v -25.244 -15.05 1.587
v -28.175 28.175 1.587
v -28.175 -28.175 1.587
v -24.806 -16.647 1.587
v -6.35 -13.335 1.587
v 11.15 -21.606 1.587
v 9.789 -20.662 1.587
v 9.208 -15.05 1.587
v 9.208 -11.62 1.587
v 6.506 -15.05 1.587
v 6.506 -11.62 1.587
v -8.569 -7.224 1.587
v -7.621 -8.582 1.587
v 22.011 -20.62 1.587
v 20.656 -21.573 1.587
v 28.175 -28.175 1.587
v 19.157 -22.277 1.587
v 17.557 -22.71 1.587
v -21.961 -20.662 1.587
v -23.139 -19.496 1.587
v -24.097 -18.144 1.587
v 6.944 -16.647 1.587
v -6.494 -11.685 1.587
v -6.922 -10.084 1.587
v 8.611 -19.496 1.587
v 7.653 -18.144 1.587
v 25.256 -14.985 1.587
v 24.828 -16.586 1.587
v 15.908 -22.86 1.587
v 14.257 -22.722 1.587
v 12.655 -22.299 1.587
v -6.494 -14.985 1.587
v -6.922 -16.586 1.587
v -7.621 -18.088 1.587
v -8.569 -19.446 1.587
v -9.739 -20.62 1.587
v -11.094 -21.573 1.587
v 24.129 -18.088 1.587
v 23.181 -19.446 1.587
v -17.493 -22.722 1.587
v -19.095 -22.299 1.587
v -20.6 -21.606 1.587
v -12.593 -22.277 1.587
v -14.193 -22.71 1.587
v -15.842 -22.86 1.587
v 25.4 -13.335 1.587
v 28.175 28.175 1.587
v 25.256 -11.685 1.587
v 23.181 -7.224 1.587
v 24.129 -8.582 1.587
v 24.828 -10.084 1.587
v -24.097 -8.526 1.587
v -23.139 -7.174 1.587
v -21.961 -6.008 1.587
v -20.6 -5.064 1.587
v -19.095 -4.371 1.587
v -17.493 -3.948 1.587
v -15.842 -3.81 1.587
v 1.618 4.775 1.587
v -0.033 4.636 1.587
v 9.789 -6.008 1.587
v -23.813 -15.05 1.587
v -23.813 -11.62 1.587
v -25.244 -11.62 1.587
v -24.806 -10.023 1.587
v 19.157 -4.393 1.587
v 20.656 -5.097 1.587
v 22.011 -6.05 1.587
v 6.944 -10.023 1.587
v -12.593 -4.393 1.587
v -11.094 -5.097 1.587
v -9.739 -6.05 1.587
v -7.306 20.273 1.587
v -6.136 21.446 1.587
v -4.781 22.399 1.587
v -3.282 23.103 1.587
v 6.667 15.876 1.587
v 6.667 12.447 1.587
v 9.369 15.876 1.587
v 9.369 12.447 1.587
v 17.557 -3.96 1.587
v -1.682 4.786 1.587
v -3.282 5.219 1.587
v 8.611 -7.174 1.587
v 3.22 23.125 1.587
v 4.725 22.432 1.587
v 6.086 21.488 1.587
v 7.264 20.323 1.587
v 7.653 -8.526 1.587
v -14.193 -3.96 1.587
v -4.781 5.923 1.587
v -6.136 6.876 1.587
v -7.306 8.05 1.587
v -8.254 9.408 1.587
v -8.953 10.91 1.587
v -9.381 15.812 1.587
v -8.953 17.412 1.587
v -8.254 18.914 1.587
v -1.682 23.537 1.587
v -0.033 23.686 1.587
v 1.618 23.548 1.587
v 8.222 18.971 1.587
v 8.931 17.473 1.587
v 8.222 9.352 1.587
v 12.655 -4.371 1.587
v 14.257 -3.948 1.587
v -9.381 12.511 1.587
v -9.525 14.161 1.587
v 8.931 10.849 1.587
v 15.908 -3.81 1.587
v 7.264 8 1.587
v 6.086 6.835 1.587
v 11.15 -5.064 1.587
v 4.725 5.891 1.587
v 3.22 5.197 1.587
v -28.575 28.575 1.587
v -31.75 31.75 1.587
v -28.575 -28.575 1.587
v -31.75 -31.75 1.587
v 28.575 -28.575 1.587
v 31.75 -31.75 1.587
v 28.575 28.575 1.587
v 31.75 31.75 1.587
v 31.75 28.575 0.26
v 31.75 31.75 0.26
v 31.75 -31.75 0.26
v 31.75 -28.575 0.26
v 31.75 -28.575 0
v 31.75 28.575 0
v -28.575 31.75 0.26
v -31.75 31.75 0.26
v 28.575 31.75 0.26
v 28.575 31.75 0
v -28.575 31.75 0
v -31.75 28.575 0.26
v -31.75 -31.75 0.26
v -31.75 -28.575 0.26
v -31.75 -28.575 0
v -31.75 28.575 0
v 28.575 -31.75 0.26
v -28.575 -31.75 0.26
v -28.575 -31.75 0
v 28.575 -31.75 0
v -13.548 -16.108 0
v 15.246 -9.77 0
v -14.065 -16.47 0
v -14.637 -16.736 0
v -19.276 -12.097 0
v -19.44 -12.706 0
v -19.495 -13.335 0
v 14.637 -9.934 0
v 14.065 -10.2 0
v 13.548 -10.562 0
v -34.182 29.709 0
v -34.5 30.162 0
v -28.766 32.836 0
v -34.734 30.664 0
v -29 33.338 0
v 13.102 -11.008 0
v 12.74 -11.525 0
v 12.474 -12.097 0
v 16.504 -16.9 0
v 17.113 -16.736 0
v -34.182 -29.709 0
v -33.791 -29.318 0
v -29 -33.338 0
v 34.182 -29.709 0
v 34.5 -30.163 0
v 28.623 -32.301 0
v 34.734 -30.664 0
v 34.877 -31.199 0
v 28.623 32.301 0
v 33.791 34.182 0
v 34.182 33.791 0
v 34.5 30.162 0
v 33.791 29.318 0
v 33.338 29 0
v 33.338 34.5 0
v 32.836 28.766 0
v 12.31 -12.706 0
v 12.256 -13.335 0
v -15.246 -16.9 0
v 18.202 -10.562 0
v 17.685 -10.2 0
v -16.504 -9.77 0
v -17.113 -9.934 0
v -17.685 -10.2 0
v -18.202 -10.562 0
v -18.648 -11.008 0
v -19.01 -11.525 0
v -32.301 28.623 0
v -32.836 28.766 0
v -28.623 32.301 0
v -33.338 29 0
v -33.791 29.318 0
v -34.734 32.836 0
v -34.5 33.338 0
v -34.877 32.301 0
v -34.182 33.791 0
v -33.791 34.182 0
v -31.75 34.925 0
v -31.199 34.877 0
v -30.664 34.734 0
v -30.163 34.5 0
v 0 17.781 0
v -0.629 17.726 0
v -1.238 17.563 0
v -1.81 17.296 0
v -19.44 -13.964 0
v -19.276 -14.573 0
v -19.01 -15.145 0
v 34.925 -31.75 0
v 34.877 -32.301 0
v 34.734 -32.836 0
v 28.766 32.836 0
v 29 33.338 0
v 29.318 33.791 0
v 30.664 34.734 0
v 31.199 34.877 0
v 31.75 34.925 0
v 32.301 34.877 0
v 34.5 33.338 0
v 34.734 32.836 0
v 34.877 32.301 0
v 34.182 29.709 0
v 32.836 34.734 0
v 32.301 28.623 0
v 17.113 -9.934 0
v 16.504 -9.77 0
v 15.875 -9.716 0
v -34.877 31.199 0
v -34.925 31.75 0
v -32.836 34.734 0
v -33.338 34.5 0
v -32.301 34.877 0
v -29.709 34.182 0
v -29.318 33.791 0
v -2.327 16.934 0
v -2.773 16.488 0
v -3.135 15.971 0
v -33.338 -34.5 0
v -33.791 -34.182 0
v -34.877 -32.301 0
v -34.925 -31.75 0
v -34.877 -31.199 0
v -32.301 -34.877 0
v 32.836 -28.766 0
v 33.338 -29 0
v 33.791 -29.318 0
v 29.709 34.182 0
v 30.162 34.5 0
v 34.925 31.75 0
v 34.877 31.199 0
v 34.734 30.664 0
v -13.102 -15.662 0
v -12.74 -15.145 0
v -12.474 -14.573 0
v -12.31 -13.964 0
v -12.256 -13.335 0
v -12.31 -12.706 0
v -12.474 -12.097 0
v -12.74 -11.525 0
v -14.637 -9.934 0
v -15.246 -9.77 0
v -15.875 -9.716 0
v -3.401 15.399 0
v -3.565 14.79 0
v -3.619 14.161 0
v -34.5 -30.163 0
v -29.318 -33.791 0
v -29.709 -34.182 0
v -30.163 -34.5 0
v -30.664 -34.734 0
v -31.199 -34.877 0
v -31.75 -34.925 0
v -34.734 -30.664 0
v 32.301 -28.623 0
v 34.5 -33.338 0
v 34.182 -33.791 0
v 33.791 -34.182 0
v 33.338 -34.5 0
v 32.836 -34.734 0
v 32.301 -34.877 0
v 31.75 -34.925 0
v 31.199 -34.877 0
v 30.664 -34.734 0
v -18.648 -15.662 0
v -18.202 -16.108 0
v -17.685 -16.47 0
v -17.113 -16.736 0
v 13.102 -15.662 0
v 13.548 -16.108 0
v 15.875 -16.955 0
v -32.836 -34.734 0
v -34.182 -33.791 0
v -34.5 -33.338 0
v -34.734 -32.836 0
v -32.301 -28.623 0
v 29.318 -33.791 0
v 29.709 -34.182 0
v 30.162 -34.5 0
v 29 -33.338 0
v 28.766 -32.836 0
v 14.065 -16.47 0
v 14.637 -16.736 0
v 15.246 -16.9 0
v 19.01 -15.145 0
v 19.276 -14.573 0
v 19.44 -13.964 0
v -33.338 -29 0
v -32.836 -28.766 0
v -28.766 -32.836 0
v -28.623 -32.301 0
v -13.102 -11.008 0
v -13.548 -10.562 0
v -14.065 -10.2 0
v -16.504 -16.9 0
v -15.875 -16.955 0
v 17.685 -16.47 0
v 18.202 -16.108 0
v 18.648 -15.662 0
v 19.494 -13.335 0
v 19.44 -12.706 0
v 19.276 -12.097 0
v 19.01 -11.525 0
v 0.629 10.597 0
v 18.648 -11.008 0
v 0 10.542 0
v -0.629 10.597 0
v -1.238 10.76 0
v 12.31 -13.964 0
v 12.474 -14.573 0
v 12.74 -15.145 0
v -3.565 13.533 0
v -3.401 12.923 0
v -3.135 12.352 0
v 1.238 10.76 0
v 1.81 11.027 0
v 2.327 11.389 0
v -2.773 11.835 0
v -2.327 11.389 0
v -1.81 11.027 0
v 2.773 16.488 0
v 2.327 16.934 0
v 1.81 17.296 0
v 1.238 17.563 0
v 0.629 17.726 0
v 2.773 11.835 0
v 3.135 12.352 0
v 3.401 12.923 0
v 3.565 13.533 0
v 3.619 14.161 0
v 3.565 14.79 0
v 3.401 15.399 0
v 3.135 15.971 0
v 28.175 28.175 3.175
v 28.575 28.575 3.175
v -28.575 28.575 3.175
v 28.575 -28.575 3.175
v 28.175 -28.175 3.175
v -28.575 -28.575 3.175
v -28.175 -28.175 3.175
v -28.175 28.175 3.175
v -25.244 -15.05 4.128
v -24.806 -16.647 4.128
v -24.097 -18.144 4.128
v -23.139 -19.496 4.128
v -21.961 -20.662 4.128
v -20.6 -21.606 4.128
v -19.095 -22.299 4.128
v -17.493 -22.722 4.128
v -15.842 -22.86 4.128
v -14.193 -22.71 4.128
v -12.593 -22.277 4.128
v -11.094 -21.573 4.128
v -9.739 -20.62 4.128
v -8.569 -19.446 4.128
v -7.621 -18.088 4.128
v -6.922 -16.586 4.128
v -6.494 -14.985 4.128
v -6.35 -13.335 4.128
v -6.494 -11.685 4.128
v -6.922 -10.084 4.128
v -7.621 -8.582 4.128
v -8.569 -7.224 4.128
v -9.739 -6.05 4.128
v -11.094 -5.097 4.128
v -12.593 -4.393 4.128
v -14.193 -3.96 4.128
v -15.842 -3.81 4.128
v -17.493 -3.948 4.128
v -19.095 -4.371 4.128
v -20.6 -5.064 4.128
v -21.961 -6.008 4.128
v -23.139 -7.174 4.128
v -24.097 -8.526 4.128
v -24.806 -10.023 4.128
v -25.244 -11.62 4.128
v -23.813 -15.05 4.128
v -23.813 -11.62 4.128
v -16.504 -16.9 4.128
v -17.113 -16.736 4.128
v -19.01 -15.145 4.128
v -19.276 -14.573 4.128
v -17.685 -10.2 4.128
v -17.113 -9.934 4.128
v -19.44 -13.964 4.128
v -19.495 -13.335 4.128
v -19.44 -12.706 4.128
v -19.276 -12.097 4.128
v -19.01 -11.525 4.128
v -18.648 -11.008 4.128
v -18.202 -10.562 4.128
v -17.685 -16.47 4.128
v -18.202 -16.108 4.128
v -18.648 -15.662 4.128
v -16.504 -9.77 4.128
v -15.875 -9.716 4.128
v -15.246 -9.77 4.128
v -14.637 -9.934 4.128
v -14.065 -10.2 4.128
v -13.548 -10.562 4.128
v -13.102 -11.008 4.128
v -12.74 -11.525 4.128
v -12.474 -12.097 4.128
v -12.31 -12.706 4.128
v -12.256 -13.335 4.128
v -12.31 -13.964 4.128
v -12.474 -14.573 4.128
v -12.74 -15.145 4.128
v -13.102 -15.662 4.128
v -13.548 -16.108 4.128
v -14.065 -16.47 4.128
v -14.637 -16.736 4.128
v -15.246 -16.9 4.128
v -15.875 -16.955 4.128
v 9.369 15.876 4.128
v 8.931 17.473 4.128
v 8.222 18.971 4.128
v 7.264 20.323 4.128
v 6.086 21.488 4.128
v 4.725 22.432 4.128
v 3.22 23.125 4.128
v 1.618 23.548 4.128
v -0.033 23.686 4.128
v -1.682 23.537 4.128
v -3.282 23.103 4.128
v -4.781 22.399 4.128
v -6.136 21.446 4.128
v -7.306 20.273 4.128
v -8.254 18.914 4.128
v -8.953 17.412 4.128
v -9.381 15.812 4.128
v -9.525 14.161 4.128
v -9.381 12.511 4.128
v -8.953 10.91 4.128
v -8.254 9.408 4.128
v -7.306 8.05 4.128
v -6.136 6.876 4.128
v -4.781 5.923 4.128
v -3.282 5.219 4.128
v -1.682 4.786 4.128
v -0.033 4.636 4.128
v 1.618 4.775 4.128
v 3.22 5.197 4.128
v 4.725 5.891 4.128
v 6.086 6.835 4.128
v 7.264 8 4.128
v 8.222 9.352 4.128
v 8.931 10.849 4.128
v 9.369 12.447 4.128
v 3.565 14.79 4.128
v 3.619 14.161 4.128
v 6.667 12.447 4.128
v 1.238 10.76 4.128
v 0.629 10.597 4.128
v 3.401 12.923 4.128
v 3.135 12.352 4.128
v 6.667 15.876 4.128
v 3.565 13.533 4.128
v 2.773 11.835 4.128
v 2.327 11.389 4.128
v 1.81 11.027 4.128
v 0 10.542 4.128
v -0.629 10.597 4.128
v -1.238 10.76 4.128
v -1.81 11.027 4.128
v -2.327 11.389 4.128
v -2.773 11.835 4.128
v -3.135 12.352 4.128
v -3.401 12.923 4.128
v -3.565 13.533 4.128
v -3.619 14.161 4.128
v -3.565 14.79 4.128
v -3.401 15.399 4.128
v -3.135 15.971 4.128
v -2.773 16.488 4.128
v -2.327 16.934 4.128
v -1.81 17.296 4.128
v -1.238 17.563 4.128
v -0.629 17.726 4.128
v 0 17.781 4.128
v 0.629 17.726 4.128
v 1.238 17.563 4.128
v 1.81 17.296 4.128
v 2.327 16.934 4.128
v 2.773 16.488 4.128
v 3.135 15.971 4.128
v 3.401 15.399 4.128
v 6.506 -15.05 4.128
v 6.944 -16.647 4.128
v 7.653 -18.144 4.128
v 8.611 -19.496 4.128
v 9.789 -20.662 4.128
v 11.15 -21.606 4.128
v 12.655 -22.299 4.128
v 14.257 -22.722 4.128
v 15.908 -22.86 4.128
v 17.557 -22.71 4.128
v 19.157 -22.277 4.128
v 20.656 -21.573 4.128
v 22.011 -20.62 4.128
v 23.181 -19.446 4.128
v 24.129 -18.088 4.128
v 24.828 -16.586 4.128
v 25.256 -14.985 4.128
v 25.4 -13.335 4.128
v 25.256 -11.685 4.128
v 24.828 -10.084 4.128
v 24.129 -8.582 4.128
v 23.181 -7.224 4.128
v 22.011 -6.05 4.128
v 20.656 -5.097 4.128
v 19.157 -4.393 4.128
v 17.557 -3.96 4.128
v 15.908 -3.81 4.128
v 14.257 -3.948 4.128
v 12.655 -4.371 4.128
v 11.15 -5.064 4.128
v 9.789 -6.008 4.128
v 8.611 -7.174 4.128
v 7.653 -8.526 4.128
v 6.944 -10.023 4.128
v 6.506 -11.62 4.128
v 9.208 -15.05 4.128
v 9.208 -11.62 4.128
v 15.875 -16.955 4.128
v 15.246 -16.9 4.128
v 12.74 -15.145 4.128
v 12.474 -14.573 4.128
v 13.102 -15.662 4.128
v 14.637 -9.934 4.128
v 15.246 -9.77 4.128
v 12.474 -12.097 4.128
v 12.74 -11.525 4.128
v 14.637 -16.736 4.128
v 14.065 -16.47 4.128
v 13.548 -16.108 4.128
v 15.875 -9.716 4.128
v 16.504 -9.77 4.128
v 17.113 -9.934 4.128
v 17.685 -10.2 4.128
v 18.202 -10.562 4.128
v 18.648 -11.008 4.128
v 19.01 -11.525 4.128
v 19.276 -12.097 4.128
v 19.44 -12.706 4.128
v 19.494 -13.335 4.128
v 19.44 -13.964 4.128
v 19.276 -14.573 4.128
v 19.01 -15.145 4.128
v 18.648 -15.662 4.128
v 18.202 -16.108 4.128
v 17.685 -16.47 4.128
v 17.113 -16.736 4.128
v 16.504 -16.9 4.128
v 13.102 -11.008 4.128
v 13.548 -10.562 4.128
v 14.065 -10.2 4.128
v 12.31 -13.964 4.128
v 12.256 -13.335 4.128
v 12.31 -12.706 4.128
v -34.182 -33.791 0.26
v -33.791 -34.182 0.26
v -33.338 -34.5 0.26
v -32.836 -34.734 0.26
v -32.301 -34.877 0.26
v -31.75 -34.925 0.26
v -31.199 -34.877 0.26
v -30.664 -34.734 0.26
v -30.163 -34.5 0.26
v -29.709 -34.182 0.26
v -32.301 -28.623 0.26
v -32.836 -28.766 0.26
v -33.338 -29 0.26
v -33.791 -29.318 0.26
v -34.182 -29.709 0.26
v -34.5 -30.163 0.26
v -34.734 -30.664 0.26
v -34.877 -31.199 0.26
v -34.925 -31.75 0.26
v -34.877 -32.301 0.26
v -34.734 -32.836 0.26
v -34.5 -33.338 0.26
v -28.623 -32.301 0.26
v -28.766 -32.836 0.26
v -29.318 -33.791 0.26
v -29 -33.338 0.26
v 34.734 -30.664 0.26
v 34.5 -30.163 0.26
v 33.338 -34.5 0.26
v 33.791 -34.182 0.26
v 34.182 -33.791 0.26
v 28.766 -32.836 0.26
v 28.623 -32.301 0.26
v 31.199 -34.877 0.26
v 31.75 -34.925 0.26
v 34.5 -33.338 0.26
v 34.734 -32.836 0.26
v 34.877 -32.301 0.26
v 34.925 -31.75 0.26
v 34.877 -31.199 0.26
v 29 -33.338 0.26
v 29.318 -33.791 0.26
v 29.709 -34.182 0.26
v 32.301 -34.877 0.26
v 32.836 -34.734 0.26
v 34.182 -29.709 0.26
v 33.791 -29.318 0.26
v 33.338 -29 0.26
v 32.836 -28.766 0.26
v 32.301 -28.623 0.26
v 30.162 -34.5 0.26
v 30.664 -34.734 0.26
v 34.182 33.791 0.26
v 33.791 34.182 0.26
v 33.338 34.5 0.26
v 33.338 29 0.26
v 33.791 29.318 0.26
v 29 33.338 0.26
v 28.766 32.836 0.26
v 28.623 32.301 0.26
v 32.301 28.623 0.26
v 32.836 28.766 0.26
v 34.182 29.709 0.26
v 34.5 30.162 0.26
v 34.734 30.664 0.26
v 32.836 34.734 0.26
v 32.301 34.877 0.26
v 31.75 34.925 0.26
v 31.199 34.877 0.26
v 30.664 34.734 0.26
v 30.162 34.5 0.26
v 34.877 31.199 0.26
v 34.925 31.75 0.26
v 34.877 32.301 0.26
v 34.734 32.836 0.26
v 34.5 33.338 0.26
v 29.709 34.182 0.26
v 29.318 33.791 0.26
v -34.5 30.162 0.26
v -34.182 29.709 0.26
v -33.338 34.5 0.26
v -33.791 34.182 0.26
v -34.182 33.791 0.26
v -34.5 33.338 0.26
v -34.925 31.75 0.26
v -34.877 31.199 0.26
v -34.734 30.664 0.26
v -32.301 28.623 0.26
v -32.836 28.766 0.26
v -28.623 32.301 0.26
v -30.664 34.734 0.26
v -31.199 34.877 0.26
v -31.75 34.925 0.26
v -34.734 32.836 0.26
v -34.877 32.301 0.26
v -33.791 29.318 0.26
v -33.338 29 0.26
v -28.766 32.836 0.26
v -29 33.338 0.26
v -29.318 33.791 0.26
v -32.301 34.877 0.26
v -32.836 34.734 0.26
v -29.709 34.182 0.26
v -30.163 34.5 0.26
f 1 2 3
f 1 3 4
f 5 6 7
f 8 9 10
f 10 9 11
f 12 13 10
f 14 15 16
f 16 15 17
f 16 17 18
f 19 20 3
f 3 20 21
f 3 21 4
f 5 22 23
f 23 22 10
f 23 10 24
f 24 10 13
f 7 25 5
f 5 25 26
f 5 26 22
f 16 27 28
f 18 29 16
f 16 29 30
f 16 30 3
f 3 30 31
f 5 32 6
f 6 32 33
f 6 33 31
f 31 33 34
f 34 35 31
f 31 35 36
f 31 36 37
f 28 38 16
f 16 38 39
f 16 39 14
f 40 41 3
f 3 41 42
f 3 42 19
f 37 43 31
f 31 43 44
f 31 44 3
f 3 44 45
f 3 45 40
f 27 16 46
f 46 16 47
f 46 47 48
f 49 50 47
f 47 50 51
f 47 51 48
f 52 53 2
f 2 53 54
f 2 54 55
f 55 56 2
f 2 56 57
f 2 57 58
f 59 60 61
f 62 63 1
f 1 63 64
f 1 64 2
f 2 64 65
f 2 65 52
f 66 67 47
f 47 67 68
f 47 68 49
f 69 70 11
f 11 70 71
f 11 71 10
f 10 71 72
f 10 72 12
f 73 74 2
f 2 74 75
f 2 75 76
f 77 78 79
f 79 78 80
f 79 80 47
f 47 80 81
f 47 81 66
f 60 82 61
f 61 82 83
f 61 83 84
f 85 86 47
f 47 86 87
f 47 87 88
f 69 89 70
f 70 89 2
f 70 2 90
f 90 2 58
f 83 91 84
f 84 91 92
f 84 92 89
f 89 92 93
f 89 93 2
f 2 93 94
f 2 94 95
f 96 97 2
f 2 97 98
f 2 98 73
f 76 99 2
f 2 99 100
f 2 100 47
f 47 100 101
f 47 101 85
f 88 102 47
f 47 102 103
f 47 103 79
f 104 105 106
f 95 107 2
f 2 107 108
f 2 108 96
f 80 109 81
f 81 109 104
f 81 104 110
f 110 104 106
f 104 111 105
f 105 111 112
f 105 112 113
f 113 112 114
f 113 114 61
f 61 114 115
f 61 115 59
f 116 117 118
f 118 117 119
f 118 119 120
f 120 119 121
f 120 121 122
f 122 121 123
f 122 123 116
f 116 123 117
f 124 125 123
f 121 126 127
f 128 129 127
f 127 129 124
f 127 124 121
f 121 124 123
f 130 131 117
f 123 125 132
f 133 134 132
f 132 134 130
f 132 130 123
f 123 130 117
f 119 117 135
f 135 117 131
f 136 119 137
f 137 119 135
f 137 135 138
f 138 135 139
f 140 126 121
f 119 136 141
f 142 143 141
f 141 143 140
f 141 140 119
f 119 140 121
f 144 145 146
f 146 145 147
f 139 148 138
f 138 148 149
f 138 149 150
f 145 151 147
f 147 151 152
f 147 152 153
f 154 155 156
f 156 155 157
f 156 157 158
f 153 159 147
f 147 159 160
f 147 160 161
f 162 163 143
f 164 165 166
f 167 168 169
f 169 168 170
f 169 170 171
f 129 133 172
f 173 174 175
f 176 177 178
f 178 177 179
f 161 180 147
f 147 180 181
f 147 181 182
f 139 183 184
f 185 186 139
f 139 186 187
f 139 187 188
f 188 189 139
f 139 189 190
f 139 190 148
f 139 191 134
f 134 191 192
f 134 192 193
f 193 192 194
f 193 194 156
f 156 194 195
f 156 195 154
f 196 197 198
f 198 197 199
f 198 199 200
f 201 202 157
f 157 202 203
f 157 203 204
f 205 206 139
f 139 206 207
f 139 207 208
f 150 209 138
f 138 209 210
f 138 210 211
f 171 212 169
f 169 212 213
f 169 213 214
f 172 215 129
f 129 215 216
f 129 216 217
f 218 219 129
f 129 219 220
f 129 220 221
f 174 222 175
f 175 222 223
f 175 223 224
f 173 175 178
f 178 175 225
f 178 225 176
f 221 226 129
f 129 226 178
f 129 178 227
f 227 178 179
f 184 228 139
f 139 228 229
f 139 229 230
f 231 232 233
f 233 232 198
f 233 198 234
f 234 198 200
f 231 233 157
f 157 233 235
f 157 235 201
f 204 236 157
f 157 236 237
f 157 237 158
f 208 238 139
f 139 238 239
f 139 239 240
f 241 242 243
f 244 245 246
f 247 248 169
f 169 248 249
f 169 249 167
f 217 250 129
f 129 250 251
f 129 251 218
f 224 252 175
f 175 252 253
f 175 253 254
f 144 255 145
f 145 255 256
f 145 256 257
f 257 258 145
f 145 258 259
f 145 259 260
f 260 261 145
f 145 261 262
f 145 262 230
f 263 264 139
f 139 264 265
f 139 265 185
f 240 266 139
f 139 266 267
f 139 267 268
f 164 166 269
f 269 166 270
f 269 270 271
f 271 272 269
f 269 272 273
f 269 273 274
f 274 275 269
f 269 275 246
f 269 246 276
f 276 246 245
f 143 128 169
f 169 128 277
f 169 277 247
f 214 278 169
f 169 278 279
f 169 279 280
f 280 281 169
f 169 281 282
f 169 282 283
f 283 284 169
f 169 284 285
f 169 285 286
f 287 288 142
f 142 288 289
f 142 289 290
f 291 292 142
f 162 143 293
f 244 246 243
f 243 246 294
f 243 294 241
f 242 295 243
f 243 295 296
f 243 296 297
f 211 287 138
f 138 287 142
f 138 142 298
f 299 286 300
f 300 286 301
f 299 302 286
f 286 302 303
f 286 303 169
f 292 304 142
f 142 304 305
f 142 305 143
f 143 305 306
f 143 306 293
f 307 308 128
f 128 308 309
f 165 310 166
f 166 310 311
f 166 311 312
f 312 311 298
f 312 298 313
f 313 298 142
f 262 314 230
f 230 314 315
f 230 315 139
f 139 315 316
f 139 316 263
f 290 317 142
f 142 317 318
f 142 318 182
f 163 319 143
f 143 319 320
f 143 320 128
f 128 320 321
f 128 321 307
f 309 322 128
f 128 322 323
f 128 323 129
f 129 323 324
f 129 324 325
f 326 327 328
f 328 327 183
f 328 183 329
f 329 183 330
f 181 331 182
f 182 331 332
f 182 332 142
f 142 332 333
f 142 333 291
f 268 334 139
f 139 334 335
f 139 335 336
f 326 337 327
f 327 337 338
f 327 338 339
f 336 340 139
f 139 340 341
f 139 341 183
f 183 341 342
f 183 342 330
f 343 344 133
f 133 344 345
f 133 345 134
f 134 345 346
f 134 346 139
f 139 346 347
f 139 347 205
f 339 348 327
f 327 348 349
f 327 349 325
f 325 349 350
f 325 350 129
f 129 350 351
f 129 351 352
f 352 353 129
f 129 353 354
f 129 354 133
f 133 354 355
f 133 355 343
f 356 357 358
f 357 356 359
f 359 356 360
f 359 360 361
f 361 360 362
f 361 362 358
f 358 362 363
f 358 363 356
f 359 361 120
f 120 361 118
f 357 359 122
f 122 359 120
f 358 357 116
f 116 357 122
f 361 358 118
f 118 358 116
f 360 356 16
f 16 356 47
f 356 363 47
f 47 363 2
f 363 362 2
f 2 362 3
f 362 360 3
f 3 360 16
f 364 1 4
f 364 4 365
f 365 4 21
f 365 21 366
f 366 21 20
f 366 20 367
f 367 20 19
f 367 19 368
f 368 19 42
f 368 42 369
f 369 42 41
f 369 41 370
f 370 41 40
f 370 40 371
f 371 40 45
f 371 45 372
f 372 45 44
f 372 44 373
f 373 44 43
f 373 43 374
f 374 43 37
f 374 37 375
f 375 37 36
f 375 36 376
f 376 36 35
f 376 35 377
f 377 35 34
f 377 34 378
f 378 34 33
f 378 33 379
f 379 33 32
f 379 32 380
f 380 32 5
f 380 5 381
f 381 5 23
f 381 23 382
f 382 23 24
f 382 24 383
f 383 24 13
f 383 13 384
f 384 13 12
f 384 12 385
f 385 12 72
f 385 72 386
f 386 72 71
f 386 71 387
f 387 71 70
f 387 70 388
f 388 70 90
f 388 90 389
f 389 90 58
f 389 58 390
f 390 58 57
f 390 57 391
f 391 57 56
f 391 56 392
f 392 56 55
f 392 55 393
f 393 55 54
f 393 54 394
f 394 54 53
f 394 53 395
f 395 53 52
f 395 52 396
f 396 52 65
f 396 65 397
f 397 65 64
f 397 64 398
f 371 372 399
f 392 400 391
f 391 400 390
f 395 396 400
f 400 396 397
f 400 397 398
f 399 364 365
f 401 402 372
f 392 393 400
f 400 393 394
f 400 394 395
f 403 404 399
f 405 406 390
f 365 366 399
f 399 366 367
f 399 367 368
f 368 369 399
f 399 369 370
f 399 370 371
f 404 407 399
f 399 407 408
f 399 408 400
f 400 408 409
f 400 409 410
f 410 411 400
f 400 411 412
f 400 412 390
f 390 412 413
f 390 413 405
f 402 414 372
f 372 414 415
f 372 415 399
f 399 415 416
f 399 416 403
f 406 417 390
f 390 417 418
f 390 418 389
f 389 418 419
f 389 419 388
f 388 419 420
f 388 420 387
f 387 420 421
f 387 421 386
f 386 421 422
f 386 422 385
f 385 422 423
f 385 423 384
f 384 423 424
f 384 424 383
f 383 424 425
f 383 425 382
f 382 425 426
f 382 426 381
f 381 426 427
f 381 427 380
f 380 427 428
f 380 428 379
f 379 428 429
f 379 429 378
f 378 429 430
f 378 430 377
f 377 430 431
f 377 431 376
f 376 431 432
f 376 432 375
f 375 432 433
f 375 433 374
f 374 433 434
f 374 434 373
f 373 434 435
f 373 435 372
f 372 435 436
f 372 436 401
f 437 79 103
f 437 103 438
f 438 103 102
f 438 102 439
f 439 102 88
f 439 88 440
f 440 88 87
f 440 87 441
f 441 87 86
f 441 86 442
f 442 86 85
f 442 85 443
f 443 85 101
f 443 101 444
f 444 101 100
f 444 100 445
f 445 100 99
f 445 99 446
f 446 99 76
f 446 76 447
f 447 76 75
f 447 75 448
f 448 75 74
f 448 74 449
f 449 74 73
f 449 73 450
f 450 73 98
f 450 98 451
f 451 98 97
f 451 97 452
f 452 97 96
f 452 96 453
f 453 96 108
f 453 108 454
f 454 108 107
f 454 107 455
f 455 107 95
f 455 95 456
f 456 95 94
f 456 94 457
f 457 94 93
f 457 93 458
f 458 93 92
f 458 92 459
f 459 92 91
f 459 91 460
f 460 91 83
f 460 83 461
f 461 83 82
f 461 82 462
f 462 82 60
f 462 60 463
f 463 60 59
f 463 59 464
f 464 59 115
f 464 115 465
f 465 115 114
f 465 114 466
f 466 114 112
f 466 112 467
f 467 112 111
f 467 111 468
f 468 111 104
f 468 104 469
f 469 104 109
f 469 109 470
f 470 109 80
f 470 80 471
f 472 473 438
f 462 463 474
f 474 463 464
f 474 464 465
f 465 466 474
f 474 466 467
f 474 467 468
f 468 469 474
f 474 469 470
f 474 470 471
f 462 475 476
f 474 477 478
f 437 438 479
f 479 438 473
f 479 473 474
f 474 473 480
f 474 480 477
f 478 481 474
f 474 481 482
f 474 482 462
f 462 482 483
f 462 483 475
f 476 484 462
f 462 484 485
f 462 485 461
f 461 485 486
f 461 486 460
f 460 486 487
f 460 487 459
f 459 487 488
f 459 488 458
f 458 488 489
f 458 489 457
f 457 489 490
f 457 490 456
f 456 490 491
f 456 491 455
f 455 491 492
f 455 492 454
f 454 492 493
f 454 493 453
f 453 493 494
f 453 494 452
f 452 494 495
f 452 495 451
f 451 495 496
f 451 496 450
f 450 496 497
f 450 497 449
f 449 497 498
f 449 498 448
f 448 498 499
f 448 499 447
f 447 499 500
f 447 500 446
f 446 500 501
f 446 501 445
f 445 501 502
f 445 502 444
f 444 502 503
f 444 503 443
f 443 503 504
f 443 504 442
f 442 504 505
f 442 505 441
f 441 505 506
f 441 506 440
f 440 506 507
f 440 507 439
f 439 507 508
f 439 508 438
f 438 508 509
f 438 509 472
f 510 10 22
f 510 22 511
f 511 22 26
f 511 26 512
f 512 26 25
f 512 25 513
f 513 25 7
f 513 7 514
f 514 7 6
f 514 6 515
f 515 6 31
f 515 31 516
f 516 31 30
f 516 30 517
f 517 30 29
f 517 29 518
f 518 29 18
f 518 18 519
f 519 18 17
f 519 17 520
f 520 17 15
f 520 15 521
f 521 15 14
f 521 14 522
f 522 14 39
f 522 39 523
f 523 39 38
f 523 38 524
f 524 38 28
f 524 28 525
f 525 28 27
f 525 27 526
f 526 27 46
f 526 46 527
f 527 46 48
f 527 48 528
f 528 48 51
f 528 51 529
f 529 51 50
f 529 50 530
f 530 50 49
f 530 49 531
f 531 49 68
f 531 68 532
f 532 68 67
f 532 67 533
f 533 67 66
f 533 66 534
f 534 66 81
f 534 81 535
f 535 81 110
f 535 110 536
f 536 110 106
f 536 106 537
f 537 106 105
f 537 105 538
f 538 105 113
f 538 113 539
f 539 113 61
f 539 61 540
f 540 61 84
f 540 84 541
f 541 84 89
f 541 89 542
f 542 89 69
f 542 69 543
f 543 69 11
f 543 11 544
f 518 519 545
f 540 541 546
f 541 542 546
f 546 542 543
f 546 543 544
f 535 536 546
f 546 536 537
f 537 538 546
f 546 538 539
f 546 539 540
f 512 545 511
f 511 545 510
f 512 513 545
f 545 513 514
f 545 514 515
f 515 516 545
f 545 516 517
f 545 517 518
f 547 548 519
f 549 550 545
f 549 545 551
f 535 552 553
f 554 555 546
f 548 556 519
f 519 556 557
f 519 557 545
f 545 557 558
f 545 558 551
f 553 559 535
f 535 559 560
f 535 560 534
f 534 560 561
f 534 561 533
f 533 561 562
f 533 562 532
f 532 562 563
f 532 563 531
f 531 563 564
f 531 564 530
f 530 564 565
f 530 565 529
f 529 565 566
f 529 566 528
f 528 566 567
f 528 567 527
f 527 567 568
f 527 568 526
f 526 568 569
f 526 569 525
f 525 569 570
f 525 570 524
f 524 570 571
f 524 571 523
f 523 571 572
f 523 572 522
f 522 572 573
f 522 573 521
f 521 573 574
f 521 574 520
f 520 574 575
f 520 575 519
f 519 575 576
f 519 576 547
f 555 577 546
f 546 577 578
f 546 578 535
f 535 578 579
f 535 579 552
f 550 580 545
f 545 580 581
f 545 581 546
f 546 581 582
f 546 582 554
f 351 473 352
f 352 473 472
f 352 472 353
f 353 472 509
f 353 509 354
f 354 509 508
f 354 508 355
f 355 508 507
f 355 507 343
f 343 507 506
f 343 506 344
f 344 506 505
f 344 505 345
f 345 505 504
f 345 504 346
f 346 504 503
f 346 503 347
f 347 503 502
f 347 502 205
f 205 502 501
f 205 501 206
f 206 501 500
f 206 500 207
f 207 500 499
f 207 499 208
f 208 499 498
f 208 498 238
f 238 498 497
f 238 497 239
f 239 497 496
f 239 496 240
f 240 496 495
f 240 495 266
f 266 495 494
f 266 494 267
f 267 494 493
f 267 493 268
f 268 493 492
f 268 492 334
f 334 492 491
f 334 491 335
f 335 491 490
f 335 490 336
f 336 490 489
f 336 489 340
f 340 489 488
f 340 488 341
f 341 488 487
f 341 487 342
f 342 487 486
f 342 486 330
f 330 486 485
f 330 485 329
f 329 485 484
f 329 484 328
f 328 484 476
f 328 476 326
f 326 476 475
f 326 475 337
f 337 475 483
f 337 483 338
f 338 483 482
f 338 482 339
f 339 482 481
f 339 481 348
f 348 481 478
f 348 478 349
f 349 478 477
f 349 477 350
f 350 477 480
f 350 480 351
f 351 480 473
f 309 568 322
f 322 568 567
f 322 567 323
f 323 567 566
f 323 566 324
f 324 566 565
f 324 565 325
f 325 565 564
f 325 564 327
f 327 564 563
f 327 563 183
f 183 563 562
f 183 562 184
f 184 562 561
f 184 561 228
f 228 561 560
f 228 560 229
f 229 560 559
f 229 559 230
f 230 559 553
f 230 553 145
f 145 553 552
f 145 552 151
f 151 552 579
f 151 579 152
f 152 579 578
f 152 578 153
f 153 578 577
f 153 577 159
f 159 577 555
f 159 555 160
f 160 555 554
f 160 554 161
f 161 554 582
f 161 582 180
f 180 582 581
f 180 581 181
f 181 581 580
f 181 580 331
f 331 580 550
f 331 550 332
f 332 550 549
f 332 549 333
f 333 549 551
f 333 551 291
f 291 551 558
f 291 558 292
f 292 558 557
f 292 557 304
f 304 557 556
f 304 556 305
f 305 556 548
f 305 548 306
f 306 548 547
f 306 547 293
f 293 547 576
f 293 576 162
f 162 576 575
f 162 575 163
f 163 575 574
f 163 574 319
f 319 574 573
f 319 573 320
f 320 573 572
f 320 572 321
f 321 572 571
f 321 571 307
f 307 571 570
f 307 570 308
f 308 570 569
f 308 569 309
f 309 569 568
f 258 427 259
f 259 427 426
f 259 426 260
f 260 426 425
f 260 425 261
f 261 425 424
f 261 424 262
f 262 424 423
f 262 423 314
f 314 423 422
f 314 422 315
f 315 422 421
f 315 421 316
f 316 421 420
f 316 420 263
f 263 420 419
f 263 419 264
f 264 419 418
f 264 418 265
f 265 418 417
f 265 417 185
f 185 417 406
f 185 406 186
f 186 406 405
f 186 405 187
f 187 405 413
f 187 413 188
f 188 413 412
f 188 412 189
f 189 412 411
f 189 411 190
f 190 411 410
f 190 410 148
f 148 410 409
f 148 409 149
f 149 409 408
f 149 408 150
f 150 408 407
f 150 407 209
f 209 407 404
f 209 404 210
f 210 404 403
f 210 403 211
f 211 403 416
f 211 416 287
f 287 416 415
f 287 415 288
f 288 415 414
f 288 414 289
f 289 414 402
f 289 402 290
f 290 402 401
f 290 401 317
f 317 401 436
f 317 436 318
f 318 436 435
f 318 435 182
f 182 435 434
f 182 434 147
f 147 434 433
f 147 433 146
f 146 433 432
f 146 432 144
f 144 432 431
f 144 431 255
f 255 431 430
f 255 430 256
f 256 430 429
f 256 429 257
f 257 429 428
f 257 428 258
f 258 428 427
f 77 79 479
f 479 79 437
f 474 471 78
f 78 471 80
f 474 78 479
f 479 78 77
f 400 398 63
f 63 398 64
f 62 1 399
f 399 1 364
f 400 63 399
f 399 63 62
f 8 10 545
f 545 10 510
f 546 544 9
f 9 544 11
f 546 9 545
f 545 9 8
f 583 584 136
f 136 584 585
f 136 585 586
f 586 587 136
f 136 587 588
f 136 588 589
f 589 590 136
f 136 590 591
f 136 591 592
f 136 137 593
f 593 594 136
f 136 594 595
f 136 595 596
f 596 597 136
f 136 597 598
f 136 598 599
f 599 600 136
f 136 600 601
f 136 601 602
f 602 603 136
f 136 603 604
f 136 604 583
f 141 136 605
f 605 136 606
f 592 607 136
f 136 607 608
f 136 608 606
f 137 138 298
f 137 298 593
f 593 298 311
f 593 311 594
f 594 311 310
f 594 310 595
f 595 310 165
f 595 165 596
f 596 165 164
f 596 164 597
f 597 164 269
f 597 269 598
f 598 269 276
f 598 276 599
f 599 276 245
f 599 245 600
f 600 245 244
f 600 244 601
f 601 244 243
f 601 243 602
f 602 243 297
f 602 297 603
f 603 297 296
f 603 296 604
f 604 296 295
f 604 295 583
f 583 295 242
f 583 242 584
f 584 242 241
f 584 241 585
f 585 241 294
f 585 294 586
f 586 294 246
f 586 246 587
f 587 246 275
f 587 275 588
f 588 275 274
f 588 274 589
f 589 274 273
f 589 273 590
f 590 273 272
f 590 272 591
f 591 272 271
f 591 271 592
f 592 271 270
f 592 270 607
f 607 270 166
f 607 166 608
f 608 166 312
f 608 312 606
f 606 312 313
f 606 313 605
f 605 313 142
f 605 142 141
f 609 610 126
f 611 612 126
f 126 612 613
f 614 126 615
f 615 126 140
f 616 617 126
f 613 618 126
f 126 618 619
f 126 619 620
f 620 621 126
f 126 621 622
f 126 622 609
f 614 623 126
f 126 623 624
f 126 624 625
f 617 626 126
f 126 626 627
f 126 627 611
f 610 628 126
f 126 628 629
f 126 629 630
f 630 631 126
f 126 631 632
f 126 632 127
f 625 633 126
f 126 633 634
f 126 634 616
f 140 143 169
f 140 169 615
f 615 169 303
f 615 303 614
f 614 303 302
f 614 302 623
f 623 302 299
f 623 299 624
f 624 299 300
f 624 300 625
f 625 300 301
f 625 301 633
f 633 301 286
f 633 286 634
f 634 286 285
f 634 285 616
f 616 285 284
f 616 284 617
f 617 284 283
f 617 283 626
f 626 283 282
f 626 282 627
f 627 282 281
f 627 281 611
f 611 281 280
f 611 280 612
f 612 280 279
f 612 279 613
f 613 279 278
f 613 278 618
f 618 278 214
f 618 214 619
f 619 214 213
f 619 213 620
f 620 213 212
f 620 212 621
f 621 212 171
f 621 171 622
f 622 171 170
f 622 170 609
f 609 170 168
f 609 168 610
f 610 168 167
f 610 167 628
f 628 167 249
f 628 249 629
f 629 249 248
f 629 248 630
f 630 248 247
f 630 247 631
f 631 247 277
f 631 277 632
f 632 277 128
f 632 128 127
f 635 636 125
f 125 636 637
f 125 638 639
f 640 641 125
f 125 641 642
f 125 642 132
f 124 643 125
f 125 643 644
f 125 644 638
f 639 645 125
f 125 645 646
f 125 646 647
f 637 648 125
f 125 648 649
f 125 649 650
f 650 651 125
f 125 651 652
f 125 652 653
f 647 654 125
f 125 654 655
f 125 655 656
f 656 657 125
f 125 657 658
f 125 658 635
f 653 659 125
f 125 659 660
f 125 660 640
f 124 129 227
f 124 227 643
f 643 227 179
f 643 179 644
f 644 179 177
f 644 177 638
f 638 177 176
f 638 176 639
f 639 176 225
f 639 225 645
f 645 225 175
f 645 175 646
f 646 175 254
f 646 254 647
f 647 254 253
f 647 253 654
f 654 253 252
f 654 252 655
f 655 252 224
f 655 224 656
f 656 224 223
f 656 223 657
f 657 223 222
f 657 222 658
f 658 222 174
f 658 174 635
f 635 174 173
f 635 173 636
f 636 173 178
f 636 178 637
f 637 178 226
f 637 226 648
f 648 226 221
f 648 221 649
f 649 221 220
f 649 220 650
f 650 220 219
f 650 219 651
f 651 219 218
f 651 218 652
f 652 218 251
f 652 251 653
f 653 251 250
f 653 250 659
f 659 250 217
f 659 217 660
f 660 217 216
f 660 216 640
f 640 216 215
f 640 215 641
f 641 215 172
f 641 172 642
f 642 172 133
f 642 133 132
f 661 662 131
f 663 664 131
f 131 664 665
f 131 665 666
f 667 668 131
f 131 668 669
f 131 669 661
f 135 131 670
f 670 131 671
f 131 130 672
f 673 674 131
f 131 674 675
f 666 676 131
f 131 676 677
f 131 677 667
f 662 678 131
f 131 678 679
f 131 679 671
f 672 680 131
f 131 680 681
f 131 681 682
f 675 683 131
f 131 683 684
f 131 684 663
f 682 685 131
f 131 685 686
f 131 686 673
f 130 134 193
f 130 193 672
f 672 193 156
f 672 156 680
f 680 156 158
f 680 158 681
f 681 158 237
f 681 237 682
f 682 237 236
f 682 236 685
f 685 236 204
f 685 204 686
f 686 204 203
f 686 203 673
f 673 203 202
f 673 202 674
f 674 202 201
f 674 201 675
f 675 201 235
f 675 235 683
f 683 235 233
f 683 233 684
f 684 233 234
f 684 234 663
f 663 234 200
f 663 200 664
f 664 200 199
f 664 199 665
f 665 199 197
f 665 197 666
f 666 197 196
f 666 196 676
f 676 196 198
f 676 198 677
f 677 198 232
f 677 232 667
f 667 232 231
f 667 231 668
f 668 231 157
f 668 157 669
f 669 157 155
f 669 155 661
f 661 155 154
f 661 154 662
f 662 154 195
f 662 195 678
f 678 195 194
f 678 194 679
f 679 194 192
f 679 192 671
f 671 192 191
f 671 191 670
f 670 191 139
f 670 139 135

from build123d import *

# Parameters (mm, degrees)
SKETCH1_W           = 63.5
SKETCH1_H           = 63.5
BOSS_EXTRUDE1_DEPTH = 1.5875
SKETCH2_W           = 57.15
SKETCH2_H           = 57.15
SKETCH2_W_2         = 56.35
SKETCH2_H_2         = 56.35
BOSS_EXTRUDE2_DEPTH = 1.5875
SKETCH3_R           = 9.525
BOSS_EXTRUDE4_DEPTH = 2.54
SKETCH5_R           = 3.6195
CUT_EXTRUDE2_DEPTH  = 46.090589442
SKETCH6_W           = 3.175
SKETCH6_H           = 3.429
CUT_EXTRUDE3_DEPTH  = 2.54
SKETCH7_R           = 3.175
BOSS_EXTRUDE5_DEPTH = 0.26


with BuildPart() as part:
    # Sketch1 → Boss-Extrude1 (new body)
    with BuildSketch(Plane.XY):
        Rectangle(SKETCH1_W, SKETCH1_H)
    extrude(amount=BOSS_EXTRUDE1_DEPTH)

    # Sketch2 → Boss-Extrude2 (add)
    with BuildSketch(Plane.XY.offset(1.5875)):
        Rectangle(SKETCH2_W, SKETCH2_H)
        Rectangle(SKETCH2_W_2, SKETCH2_H_2, mode=Mode.SUBTRACT)
    extrude(amount=BOSS_EXTRUDE2_DEPTH)

    # Sketch3 → Boss-Extrude4 (add)
    with BuildSketch(Plane.XY.offset(1.5875)):
        with Locations(Location((-15.875, -13.335, 0), (0, 0, 180))):
            Circle(SKETCH3_R)
        with Locations(Location((0, 14.16130657, 0), (0, 0, 180))):
            Circle(SKETCH3_R)
        with Locations(Location((15.875, -13.335, 0), (0, 0, 180))):
            Circle(SKETCH3_R)
    extrude(amount=BOSS_EXTRUDE4_DEPTH)

    # Sketch5 → Cut-Extrude2 (cut, through all)
    with BuildSketch(Plane.XY.offset(4.1275)):
        with Locations((0, 14.16130657)):
            Circle(SKETCH5_R)
        with Locations((15.875, -13.335)):
            Circle(SKETCH5_R)
        with Locations((-15.875, -13.335)):
            Circle(SKETCH5_R)
    extrude(amount=-CUT_EXTRUDE2_DEPTH, mode=Mode.SUBTRACT)

    # Sketch6 → Cut-Extrude3 (cut)
    with BuildSketch(Plane.XY.offset(4.1275)):
        with Locations((8.255, 14.16130657)):
            Rectangle(SKETCH6_W, SKETCH6_H)
        with Locations((-25.4, -13.335)):
            Rectangle(SKETCH6_W, SKETCH6_H)
        with Locations((7.62, -13.335)):
            Rectangle(SKETCH6_W, SKETCH6_H)
    extrude(amount=-CUT_EXTRUDE3_DEPTH, mode=Mode.SUBTRACT)

    # Sketch7 → Boss-Extrude5 (add)
    with BuildSketch(Plane(origin=(0, 0, 0), x_dir=(-1, 0, 0), z_dir=(0, 0, -1))):
        with Locations((31.75, -31.75)):
            Circle(SKETCH7_R)
        with Locations((-31.75, -31.75)):
            Circle(SKETCH7_R)
        with Locations((-31.75, 31.75)):
            Circle(SKETCH7_R)
        with Locations((31.75, 31.75)):
            Circle(SKETCH7_R)
    extrude(amount=-BOSS_EXTRUDE5_DEPTH)


solid = part.part
